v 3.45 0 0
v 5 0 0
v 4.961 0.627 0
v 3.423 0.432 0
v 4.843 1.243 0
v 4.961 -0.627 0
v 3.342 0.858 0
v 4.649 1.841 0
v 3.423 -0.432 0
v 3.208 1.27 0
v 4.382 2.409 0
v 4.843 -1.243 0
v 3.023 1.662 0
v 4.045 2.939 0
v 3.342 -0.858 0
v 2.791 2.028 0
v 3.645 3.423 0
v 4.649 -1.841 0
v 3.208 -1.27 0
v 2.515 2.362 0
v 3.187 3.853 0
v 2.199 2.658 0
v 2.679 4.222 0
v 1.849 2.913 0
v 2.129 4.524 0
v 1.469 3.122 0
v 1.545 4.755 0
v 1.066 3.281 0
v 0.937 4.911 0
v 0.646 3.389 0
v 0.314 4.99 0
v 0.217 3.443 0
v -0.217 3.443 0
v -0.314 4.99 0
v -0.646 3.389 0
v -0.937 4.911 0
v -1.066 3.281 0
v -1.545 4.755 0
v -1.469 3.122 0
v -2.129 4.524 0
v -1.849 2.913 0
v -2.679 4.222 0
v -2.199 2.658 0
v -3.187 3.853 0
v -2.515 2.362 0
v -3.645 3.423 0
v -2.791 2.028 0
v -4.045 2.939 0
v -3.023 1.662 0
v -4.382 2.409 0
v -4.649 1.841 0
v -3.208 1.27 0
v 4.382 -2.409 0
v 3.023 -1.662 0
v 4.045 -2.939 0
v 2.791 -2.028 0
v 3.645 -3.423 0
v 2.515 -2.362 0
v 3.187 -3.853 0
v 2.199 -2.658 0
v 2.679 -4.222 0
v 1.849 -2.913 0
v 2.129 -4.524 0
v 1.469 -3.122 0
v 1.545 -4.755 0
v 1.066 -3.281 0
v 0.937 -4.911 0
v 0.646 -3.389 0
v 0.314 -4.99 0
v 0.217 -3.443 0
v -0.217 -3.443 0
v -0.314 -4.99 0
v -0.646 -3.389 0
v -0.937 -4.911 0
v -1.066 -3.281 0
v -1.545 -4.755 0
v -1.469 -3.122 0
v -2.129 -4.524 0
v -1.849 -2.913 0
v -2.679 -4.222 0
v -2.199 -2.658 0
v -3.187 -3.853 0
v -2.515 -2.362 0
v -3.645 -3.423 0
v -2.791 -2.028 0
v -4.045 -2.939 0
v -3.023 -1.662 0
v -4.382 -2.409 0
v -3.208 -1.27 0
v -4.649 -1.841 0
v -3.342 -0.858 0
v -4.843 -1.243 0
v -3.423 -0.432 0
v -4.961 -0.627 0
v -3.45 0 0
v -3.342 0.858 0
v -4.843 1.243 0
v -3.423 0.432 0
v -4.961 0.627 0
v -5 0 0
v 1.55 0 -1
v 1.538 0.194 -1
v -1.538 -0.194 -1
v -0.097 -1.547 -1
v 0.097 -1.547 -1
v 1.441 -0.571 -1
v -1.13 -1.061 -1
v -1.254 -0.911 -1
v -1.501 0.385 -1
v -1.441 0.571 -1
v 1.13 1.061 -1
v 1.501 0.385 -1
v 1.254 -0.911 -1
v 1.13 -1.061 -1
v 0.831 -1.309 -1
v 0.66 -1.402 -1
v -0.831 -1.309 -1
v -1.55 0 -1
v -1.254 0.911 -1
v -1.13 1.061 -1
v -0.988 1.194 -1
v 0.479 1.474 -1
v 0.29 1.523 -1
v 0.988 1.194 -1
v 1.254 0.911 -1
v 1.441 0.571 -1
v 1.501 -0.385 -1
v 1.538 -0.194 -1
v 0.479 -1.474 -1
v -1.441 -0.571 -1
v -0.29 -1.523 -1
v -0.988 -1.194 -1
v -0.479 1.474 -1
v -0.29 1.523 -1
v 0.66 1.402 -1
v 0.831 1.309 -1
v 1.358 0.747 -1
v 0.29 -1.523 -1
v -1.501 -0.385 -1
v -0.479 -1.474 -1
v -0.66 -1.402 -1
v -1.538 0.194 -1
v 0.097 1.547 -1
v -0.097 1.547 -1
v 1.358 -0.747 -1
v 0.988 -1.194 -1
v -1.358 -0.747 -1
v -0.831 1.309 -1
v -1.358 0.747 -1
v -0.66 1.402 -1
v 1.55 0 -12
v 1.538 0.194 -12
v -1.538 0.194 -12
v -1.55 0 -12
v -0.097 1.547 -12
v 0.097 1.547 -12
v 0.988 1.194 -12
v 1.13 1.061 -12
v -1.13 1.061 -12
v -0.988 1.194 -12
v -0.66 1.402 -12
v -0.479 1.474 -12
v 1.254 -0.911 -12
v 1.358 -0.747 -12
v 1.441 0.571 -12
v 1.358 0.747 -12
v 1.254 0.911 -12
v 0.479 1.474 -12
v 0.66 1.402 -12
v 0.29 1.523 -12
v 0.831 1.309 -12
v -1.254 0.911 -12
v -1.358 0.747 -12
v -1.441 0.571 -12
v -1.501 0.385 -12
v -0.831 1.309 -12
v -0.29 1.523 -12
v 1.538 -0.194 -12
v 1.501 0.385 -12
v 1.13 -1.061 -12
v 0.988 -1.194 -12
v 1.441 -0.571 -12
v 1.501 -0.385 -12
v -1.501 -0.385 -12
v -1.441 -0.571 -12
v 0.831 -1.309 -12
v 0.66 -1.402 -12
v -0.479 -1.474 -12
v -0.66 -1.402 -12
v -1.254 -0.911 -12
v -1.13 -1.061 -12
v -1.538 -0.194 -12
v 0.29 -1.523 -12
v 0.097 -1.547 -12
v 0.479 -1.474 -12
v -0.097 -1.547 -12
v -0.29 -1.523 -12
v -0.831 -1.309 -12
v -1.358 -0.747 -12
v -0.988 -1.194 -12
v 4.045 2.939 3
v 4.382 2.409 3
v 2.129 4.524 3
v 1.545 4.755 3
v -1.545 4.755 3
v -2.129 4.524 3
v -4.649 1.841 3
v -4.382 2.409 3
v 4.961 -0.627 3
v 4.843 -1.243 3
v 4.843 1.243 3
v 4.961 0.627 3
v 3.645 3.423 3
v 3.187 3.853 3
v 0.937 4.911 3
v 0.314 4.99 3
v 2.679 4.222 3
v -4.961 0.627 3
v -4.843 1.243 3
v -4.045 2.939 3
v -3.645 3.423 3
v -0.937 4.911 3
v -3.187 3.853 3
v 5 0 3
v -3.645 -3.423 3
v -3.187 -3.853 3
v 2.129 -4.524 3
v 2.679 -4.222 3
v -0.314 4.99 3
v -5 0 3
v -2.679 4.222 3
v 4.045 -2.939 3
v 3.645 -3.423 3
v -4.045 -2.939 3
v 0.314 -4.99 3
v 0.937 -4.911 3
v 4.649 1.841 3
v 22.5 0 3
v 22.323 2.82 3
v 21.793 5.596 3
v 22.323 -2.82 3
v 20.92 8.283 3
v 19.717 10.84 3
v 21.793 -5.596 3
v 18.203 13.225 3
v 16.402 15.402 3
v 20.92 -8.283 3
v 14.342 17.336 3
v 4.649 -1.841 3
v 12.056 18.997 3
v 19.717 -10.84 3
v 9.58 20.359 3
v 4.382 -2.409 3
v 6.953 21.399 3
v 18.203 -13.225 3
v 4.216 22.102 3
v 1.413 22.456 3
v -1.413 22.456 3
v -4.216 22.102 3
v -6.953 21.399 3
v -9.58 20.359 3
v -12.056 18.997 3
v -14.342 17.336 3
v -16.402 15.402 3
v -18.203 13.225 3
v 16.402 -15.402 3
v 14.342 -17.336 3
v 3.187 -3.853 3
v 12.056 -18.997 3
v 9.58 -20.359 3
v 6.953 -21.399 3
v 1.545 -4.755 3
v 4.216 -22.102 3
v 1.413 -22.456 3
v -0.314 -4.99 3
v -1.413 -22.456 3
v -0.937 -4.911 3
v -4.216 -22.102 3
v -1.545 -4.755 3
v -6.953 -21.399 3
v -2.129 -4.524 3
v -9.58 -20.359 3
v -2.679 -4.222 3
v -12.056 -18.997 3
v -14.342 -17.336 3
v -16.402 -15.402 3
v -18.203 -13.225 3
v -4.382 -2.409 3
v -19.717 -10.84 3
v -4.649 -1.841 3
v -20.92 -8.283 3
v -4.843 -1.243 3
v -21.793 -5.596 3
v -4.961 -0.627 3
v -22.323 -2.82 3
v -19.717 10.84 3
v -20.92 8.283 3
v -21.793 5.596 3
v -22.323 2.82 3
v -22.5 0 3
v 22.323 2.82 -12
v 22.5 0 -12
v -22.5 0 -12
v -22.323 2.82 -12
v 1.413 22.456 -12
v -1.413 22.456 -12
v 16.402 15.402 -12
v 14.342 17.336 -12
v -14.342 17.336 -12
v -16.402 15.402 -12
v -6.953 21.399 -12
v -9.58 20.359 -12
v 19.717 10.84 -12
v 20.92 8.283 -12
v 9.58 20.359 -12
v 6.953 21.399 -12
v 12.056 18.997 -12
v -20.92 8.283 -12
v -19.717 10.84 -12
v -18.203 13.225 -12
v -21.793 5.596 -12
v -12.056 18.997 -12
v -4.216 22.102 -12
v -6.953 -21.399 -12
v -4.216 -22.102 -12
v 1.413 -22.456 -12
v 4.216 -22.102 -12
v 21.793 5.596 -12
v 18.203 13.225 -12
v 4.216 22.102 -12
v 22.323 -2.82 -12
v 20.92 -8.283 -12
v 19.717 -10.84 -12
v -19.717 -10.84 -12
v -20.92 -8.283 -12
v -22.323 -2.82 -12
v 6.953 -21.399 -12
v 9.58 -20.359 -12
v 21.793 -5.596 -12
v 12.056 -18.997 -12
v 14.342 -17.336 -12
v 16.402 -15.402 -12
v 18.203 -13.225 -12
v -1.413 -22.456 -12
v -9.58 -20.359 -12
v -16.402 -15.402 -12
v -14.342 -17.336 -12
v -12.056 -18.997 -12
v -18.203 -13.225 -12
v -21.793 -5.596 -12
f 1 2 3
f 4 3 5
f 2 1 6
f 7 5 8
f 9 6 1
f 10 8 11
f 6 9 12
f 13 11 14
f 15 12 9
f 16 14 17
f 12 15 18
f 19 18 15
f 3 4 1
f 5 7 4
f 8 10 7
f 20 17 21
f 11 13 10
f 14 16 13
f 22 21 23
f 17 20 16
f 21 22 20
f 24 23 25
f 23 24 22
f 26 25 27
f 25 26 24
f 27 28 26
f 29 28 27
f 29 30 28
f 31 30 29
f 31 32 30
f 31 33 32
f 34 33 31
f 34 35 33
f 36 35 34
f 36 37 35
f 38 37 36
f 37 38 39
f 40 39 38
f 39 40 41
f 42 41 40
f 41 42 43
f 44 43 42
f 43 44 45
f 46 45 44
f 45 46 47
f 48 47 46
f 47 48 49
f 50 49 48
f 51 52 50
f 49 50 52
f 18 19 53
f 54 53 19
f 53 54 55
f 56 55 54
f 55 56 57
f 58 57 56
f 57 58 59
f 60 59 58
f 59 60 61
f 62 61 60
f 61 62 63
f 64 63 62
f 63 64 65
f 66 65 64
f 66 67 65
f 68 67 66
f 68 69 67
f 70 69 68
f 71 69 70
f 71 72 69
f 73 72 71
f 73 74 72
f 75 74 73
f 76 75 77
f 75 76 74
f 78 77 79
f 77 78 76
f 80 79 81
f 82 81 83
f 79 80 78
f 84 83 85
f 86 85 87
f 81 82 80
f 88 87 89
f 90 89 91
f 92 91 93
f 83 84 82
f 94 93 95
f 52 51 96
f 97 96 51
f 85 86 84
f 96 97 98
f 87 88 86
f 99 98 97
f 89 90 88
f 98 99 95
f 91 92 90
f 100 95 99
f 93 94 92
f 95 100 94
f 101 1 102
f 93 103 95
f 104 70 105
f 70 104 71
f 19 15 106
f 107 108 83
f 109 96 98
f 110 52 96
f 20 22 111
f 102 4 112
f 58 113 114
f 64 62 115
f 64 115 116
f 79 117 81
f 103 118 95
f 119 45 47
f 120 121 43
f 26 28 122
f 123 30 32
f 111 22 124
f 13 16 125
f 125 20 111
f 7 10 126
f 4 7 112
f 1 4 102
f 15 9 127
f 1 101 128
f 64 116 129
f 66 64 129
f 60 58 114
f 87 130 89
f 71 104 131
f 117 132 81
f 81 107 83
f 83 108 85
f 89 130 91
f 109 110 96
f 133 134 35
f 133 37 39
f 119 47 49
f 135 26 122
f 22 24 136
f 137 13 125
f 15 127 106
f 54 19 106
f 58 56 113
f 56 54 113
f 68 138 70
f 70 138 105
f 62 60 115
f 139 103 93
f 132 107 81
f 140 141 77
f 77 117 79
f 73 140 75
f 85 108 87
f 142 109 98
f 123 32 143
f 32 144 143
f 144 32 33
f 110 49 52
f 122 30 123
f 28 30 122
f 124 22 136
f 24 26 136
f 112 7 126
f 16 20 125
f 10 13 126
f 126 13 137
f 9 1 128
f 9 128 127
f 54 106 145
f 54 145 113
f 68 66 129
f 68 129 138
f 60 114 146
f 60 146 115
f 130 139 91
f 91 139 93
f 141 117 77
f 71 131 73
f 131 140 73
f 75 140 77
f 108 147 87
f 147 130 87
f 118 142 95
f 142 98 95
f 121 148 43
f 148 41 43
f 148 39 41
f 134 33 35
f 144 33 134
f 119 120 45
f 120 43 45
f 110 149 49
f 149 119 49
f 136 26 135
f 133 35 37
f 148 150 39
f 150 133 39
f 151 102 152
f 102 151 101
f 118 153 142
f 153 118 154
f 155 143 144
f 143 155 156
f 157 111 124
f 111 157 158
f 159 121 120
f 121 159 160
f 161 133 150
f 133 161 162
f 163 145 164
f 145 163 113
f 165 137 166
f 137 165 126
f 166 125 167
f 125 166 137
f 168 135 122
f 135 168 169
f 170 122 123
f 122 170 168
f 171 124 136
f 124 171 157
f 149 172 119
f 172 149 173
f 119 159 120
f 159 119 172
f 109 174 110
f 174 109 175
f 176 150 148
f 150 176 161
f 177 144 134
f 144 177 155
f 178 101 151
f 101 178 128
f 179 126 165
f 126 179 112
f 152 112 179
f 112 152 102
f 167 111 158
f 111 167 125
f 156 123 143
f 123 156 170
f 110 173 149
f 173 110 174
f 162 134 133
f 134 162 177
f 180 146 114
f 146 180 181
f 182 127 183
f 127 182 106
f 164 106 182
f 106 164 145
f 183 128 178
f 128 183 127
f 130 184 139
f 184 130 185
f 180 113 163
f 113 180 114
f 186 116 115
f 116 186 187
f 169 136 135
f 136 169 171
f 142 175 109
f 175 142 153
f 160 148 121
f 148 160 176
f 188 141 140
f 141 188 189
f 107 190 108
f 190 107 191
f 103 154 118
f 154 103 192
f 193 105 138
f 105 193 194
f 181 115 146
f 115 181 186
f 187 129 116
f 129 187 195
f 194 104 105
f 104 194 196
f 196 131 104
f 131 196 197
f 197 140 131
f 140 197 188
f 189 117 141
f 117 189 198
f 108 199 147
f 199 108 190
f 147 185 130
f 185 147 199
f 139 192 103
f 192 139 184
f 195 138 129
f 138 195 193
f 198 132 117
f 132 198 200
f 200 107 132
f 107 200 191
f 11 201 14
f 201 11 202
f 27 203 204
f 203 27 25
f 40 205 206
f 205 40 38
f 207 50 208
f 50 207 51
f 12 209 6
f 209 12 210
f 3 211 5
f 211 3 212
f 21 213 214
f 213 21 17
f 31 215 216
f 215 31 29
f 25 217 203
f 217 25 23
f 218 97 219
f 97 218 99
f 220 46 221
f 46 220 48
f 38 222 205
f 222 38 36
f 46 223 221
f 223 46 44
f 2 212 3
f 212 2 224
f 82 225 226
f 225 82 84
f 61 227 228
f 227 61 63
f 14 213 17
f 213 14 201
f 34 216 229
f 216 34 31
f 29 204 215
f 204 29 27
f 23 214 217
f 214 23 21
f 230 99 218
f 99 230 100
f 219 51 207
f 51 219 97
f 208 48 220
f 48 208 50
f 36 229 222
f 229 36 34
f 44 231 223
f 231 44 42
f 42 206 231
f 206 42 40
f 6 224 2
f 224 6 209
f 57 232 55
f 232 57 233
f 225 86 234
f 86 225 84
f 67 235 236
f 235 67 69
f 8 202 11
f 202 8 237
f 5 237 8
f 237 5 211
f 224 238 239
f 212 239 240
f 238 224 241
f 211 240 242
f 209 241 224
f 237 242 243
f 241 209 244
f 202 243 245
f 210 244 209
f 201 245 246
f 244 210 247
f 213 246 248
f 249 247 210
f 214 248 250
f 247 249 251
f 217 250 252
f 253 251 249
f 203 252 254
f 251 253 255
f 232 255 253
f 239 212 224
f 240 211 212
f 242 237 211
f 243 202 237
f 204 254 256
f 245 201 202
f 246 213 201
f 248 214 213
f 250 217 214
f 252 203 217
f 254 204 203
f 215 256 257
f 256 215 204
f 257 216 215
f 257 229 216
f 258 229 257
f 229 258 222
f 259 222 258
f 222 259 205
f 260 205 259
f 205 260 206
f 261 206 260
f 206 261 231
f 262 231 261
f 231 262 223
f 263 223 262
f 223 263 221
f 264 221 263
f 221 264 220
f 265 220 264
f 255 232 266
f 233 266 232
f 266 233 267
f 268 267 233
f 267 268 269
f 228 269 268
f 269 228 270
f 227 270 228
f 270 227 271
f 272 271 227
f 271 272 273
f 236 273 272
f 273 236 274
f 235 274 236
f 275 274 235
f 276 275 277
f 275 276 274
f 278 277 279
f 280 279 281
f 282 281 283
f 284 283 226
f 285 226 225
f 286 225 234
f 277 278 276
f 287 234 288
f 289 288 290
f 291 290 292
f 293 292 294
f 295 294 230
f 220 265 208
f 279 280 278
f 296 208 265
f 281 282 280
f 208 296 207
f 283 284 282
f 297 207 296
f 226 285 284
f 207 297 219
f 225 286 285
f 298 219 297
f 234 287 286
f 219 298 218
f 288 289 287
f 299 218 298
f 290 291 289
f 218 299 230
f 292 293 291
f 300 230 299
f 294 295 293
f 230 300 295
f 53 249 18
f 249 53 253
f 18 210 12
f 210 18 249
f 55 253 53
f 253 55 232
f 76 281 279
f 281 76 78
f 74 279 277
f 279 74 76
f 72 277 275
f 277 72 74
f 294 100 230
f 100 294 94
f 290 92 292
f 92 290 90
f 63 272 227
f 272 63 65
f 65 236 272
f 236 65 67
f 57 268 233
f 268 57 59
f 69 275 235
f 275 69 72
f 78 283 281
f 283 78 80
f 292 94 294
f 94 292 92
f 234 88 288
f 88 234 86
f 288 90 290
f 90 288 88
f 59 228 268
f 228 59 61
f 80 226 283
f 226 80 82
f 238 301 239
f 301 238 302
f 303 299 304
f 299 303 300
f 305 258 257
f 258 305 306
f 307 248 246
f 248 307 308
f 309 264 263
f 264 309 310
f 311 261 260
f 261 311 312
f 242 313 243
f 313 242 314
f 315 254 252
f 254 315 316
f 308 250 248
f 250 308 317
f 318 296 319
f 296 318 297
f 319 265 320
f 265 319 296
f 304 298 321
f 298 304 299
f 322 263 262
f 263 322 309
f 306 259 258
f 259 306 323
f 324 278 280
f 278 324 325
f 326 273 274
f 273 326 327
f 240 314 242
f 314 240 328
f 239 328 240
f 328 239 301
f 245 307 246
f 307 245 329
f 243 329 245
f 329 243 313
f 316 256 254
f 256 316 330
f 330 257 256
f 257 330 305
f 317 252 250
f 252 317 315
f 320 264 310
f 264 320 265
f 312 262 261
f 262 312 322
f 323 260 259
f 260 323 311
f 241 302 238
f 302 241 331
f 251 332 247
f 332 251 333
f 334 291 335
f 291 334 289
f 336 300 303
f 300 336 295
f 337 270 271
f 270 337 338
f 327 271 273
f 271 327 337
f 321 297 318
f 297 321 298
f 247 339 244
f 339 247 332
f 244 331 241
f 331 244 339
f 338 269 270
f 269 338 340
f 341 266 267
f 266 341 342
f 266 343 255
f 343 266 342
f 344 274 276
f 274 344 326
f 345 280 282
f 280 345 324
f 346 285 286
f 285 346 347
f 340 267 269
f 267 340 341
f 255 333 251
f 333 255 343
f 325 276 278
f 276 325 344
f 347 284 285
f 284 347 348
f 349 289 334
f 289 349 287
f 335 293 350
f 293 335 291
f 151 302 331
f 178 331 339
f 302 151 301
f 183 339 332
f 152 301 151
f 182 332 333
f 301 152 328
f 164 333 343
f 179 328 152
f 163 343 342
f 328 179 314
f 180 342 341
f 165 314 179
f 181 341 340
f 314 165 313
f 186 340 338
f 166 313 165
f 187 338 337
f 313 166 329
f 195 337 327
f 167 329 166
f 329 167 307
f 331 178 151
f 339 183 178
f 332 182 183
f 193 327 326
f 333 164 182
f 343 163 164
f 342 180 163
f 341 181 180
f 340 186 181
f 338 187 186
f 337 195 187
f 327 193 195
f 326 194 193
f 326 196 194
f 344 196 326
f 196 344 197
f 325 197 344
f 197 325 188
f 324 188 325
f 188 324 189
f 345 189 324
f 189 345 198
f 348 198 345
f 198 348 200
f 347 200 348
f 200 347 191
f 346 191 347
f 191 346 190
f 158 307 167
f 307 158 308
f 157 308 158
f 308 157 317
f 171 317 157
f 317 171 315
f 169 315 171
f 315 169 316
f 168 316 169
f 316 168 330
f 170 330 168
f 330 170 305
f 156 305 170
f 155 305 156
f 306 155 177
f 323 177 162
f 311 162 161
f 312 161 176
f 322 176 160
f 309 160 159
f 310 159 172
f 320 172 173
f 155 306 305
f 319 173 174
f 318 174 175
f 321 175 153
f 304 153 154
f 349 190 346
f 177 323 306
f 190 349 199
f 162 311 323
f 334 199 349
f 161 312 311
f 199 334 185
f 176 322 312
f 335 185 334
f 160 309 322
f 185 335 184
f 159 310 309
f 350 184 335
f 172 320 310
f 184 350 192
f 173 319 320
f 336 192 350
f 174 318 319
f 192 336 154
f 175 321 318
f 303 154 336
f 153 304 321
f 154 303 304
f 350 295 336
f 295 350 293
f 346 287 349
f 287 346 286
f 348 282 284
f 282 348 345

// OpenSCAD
$fn = 50;


difference() {
	union() {
		translate(v = [0, 0, -12.0000000000]) {
			cylinder(h = 15, r = 22.5000000000);
		}
	}
	union() {
		translate(v = [0, 0, 0]) {
			rotate(a = [0, 0, 0]) {
				difference() {
					union() {
						translate(v = [0, 0, -15.0000000000]) {
							cylinder(h = 15, r = 1.2500000000);
						}
						translate(v = [0, 0, -1.0000000000]) {
							cylinder(h = 1.0000000000, r1 = 1.5500000000, r2 = 3.4500000000);
						}
						translate(v = [0, 0, -15.0000000000]) {
							cylinder(h = 15, r = 1.5500000000);
						}
						translate(v = [0, 0, -15.0000000000]) {
							cylinder(h = 15, r = 1.2500000000);
						}
					}
					union();
				}
			}
		}
		#cylinder(h = 3, r = 5.0000000000);
	}
}
